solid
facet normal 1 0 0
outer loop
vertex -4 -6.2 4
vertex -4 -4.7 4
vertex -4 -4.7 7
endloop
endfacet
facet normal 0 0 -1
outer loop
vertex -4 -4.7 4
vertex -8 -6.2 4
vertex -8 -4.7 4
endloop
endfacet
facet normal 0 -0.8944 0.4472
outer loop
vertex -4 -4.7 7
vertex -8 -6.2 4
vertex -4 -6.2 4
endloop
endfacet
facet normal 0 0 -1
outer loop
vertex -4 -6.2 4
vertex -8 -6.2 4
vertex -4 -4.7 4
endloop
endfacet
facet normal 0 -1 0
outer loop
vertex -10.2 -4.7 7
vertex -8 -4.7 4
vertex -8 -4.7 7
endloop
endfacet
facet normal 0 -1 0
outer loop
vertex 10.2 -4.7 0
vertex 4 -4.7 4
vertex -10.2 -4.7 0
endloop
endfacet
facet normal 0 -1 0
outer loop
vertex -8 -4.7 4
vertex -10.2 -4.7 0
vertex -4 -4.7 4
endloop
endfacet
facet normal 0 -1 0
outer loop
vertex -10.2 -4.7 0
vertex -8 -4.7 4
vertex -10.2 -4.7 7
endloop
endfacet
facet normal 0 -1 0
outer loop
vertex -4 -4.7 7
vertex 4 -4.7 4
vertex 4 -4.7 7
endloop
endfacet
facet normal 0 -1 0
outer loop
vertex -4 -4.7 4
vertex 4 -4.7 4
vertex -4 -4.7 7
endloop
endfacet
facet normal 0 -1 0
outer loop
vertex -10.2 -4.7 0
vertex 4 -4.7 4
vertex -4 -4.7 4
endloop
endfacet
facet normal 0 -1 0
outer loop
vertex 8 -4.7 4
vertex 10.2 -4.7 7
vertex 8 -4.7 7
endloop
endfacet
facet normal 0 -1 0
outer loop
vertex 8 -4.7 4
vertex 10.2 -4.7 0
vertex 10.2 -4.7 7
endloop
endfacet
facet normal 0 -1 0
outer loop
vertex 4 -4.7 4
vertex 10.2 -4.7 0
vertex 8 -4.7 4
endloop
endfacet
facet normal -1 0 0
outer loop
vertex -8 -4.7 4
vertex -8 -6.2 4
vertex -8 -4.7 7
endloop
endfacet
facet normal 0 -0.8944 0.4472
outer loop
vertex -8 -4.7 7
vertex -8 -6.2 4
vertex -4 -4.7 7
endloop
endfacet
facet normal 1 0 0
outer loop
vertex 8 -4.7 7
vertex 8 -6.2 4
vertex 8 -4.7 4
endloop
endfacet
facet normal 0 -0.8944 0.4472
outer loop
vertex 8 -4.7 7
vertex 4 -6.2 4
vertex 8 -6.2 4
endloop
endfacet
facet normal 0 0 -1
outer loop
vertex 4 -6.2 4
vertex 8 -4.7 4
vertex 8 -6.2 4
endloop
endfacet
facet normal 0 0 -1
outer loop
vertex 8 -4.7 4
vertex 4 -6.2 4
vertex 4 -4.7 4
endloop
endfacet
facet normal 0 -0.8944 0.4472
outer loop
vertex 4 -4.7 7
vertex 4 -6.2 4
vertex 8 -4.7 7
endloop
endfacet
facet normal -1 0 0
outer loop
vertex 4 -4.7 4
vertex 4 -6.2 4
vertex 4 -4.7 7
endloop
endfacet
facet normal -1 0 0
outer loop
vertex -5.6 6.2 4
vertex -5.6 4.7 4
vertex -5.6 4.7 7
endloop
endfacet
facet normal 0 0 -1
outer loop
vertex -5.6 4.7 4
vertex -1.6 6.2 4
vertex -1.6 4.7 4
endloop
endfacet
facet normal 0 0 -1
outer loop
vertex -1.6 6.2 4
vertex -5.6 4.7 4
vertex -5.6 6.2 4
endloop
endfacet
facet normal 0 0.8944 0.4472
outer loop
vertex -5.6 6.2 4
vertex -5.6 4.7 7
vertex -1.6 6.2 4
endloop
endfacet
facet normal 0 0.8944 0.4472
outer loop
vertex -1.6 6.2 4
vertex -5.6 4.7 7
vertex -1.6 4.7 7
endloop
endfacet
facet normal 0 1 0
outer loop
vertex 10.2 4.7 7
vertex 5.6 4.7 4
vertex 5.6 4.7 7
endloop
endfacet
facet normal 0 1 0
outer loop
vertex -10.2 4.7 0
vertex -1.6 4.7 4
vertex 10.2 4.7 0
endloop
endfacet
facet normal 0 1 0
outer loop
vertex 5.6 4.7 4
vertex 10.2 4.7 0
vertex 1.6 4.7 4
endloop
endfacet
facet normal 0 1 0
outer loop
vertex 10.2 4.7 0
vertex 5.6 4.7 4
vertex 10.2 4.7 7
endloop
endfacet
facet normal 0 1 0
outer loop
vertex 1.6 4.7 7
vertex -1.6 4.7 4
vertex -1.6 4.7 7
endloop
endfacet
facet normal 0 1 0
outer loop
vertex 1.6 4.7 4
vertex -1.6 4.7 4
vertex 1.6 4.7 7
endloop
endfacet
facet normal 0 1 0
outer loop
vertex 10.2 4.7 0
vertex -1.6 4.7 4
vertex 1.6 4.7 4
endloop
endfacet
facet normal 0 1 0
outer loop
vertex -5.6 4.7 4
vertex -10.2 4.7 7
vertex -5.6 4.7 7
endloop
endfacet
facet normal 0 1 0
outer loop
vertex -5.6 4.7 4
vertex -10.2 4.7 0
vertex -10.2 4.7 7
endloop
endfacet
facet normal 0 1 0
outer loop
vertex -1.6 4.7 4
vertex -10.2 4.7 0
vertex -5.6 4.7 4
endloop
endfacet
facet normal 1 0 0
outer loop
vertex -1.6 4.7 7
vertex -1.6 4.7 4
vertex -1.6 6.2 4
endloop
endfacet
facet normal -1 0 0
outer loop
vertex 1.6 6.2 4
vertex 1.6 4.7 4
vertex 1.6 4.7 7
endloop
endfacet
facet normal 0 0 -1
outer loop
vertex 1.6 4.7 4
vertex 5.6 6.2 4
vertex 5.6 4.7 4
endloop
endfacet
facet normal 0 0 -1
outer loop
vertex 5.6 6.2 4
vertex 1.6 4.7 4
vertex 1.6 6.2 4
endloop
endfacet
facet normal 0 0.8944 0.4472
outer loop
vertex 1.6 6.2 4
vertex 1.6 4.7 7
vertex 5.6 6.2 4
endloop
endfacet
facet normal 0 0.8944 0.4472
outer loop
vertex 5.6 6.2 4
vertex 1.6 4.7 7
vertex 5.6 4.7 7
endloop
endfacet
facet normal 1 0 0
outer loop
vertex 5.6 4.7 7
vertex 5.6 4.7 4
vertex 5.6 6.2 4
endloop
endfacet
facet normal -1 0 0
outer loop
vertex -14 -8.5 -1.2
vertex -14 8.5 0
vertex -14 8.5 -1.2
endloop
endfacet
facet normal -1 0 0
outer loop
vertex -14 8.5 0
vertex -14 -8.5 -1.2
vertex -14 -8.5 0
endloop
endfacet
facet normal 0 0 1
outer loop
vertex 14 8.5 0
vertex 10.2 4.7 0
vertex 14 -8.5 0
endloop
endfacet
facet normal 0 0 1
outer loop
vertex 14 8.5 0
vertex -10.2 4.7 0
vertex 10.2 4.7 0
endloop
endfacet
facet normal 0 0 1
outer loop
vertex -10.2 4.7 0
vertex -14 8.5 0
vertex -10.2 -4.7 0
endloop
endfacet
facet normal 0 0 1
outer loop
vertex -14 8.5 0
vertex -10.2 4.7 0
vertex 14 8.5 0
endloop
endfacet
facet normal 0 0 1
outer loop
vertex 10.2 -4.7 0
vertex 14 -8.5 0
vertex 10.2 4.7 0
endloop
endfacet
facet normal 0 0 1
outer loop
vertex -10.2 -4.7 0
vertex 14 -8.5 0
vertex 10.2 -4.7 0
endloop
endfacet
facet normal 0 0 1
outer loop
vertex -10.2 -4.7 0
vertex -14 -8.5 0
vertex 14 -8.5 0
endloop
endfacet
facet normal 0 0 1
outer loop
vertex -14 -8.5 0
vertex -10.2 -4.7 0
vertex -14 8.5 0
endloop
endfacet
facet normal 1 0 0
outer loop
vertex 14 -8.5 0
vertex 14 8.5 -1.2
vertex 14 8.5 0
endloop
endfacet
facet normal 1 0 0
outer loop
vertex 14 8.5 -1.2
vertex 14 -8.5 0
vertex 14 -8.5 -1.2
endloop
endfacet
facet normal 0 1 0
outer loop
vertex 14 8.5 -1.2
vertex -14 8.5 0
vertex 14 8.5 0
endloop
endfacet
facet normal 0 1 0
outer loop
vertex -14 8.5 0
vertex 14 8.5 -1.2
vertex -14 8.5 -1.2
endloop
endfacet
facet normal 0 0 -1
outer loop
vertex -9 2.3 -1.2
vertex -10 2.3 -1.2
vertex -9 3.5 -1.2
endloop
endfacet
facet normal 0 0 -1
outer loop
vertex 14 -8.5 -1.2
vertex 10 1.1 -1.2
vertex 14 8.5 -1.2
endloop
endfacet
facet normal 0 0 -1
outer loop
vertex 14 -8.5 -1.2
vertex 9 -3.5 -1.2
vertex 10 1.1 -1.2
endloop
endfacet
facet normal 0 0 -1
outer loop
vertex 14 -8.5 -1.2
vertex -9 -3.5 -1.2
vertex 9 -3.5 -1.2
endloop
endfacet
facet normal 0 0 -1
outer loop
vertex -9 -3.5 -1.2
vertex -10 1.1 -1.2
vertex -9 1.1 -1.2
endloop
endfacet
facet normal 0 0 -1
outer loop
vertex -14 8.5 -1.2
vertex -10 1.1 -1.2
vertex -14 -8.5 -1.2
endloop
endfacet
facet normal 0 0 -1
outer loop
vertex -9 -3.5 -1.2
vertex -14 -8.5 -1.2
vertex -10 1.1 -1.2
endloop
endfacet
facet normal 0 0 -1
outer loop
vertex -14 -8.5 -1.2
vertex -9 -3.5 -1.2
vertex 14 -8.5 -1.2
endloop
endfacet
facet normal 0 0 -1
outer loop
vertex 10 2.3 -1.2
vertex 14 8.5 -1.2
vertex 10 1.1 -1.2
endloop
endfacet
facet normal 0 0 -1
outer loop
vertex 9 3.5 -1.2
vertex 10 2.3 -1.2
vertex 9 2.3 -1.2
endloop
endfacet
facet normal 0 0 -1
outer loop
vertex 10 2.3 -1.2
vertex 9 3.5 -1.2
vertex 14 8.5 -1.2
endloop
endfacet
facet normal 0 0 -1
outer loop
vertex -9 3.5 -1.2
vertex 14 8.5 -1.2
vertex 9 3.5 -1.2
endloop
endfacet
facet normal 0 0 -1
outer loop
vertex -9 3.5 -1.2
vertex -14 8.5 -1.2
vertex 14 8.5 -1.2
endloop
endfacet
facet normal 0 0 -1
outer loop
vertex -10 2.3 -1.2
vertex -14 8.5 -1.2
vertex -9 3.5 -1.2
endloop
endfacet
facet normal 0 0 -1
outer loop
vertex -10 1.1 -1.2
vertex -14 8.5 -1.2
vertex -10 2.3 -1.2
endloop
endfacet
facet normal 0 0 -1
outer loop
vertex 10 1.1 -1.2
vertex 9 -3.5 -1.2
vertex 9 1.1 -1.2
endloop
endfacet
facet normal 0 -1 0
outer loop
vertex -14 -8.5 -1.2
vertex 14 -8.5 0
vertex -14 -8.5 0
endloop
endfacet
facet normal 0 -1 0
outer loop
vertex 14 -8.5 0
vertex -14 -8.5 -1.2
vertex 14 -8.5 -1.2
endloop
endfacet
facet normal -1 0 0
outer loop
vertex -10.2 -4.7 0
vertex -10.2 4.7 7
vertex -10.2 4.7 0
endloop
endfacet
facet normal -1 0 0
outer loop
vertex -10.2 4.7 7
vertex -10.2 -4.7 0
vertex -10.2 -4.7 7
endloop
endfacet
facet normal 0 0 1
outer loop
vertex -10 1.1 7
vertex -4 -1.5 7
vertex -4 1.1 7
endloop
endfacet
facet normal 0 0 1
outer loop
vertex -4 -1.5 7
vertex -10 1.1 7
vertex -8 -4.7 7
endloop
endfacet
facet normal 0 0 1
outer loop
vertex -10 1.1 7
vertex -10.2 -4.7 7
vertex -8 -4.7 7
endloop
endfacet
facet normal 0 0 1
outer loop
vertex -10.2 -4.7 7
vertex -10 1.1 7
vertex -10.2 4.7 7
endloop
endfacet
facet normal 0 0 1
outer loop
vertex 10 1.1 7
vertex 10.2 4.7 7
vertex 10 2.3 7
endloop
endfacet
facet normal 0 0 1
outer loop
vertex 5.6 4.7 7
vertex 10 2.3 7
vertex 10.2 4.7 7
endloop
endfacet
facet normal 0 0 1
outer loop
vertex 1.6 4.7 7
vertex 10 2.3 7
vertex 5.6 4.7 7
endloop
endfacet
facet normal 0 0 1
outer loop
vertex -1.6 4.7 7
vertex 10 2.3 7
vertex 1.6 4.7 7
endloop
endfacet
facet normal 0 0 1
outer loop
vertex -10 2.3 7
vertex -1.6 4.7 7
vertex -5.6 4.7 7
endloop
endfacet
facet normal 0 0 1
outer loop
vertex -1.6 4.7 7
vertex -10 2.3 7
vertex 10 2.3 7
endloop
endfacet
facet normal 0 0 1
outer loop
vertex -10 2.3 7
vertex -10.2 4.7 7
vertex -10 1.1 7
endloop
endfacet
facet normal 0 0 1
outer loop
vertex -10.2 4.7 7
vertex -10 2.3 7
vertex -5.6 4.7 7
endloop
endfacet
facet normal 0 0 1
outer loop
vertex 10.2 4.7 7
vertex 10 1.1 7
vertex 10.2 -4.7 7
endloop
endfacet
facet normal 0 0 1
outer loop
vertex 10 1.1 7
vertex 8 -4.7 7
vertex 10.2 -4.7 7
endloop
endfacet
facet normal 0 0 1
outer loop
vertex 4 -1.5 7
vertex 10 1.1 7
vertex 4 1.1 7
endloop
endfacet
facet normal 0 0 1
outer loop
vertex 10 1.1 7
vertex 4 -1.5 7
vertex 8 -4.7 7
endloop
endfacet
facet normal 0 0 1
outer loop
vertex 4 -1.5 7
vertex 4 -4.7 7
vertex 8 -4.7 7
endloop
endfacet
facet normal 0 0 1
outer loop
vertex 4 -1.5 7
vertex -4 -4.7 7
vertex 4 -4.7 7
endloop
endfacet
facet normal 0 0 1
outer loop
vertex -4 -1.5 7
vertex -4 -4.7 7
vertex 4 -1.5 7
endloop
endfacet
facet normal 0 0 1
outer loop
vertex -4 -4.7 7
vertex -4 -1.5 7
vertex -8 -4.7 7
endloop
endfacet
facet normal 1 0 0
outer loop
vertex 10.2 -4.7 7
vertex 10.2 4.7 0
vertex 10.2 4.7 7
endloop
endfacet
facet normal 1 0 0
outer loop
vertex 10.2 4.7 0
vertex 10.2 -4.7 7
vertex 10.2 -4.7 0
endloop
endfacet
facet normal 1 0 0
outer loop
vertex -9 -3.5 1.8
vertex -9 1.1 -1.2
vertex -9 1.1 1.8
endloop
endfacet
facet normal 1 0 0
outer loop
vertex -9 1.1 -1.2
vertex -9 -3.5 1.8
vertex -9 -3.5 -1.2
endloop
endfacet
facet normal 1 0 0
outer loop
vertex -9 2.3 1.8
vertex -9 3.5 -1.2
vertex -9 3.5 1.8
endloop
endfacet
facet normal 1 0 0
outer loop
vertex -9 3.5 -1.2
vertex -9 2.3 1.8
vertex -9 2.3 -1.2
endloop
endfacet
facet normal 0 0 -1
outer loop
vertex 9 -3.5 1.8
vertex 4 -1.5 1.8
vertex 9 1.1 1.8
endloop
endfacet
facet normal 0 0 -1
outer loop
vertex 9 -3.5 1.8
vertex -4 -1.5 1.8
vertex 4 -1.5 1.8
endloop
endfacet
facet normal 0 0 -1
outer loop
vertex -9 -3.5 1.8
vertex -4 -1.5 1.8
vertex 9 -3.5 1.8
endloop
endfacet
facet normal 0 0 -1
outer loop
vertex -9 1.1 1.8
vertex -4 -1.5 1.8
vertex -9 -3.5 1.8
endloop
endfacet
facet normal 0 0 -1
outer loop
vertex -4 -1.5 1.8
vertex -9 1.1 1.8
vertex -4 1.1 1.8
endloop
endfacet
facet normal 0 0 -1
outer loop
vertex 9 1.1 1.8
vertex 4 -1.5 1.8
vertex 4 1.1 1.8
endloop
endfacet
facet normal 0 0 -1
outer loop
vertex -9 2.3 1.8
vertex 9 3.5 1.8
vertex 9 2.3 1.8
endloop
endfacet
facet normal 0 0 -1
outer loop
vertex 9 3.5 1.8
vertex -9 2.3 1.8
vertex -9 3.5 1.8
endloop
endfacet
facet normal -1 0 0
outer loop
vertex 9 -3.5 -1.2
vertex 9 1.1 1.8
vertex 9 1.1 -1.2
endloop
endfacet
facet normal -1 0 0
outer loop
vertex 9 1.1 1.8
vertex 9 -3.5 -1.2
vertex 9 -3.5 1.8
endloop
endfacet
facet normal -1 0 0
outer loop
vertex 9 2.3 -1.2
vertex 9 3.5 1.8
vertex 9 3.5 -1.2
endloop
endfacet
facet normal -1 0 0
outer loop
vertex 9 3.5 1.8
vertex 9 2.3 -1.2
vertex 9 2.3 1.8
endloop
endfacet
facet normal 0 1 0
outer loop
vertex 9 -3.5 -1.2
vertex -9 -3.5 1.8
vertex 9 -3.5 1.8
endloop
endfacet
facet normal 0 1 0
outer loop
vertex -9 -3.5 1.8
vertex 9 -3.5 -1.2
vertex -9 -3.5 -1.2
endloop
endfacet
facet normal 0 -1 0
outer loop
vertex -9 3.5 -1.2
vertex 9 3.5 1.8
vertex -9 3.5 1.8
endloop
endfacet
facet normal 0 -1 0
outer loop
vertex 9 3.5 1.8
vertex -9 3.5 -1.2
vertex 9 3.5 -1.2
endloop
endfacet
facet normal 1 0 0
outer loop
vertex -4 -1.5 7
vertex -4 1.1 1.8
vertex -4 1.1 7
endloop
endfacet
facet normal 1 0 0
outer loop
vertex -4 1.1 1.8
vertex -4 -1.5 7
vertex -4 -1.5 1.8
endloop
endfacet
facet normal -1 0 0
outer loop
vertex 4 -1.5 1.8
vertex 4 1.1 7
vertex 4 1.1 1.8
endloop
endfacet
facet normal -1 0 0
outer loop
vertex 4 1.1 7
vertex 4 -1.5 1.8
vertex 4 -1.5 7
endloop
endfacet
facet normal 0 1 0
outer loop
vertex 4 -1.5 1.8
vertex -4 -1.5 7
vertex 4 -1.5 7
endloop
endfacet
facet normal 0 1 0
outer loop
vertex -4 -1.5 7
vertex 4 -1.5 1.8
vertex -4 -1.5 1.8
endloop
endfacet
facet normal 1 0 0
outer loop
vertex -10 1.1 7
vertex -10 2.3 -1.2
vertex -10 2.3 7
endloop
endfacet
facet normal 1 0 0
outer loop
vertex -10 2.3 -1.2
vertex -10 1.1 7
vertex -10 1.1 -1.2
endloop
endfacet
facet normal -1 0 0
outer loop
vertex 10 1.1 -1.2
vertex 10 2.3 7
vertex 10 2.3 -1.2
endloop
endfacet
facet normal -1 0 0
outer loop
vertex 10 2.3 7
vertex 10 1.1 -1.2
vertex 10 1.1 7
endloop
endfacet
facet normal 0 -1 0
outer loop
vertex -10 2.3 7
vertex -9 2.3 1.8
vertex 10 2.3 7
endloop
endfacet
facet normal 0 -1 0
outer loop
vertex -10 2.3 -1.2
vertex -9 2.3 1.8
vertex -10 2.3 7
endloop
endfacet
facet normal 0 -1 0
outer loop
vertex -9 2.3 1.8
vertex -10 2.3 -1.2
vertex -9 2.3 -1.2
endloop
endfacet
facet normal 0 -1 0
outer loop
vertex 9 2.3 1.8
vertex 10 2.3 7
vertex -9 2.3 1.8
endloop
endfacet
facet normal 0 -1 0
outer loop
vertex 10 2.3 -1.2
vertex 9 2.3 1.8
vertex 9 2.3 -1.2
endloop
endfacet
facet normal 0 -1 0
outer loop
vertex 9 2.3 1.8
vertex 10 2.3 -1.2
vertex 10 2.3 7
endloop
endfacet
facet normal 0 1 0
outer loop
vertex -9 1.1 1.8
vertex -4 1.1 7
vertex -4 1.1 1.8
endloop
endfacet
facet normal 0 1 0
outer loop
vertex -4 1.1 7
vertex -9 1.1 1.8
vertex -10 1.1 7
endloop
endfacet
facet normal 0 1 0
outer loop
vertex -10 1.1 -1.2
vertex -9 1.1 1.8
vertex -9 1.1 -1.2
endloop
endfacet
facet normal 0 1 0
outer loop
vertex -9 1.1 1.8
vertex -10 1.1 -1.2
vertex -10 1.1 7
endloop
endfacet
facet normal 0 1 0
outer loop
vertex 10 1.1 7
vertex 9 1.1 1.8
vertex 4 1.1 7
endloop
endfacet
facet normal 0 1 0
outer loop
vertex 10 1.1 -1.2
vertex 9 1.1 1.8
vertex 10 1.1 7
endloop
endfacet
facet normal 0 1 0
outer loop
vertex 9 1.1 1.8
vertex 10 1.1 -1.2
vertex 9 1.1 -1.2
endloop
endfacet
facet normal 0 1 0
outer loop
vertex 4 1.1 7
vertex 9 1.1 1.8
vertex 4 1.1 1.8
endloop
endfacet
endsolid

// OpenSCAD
$fn  = 50;

width = 18;
height = 7;

boxOverlap = 10;
boxThickness = 1.2;
boxDepth = 3;
boxKragen = 1.6;
boxFloorThickness = 3;

woodWidth = 4;

clipWidth = 4;
clipNoseThickness = 1.5;
clipLength = 3;

box();

module solidBox() {
    
    // kragen
    translate([0,0,-boxThickness/2]) cube([width + boxOverlap, height + boxOverlap, boxThickness], true);
 
    // durchführung
    translate([0, 0, (boxDepth)/2+2]) cube([width + boxThickness * 2, height + boxThickness * 2, boxDepth + 4], true); 
    
    translate([0,3.5,boxDepth + 2]) cube([width + boxThickness * 2,2.4,4], true); 
    
    translate([0,-3.5,boxDepth + 2]) cube([width + boxThickness * 2,2.4,4], true); 
    
    for(n = [-1,1])
    for(i = [-1,1])
    translate([i * width/(4 + n),n * (height/2 + boxThickness),woodWidth]) rotate([90,0,n*90]) linear_extrude(height = clipWidth, center=true) polygon([
            [0, clipLength],
            [0, 0],
            [clipNoseThickness, 0]        
        ]);  

}


module box() {      
   difference() { 
      solidBox();
             
      // oberer teil
      translate([-width/2,-height/2,-boxThickness]) cube([width, height, boxDepth]);    
            
      // usb slot
      translate([0,0,boxDepth-boxFloorThickness/2]) cube([8,3,20], true); 
      translate([0,1.7,boxDepth + 0.4]) cube([20,1.2,20], true); 
   }   
   
}
